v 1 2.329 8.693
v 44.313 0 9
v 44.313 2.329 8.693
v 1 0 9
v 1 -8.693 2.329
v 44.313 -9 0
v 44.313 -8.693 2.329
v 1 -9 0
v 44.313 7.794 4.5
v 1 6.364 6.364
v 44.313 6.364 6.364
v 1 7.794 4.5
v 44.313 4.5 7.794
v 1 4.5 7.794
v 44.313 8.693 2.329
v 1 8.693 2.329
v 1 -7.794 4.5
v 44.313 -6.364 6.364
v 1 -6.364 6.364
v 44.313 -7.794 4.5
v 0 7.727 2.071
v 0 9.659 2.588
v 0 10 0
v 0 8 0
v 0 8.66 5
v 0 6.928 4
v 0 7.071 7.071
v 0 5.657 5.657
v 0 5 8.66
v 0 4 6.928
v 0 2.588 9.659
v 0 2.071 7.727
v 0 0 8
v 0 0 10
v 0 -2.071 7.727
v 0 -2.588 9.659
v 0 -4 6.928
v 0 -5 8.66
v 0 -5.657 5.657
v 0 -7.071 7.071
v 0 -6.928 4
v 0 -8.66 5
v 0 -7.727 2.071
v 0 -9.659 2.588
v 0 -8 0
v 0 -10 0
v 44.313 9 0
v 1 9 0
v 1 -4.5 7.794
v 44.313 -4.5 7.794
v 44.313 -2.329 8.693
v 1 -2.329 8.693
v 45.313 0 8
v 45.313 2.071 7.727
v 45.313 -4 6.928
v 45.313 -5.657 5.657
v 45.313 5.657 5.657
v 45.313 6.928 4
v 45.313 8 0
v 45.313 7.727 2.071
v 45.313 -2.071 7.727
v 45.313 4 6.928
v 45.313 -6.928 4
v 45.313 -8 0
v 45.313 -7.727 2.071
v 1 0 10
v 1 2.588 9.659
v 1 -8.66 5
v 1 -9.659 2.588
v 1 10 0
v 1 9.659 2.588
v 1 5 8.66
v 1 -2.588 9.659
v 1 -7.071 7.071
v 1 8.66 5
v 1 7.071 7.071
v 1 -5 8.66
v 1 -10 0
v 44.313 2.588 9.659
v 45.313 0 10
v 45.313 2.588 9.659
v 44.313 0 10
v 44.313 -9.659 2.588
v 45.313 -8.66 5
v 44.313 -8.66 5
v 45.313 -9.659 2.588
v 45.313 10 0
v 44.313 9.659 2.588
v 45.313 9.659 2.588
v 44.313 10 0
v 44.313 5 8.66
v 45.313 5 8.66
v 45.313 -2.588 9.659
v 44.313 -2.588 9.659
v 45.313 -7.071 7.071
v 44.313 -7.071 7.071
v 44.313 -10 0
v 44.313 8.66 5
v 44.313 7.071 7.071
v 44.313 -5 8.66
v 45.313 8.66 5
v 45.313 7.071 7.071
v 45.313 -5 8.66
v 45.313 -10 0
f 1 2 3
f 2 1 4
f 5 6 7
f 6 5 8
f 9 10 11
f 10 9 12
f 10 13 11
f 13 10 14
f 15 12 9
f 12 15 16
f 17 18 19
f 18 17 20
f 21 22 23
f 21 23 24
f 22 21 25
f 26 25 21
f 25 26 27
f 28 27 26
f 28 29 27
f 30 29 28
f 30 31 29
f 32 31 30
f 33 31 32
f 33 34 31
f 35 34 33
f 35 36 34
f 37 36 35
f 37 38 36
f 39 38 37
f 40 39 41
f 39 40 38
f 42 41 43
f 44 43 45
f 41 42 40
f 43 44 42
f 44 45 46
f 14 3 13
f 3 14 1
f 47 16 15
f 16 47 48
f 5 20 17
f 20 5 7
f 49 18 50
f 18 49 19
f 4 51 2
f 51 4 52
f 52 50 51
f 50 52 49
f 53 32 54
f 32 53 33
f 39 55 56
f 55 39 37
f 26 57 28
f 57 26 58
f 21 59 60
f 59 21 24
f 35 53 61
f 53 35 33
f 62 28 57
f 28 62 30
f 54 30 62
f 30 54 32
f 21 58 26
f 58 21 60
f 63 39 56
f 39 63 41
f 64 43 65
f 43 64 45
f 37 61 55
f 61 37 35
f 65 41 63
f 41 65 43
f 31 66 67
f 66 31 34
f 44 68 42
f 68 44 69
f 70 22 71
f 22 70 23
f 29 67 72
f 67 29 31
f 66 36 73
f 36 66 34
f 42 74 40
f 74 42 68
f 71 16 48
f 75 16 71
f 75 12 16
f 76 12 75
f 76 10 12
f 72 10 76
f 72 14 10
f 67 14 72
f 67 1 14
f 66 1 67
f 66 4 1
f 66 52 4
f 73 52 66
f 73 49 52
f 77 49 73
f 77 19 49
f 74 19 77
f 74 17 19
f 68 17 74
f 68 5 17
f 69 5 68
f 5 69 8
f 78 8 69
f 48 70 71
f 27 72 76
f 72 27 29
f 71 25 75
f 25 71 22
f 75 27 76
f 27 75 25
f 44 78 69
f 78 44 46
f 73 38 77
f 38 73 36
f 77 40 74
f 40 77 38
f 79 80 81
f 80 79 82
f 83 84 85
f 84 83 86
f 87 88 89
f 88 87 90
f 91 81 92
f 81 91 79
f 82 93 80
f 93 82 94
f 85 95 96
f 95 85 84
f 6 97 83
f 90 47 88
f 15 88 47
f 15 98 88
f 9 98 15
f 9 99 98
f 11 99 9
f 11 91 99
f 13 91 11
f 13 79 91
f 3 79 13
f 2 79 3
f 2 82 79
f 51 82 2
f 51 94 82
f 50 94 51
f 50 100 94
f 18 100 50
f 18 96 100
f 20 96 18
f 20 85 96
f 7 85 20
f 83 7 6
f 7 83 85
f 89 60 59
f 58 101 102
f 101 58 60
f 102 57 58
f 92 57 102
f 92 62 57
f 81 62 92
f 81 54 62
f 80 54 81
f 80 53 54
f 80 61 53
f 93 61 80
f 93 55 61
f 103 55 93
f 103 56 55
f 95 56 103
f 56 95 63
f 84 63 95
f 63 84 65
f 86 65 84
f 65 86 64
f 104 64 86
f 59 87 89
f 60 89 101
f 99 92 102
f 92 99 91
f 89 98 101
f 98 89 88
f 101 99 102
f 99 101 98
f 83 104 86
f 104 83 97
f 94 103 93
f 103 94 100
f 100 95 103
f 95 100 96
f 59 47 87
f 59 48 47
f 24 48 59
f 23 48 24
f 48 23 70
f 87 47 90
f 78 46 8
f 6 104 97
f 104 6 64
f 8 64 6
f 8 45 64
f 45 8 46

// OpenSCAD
// file: ../build_environments.scad
// build_environments.scad: modules to build level sections
//

module pool(diameter=10.0, wall_height=2.0, step_width=3.0, connections=[])
{
    difference() {
        union() {
        difference() {
            cylinder(h=0.5,r1=diameter+step_width,r2=diameter+step_width,$fn=48);
            translate([0,0,-0.1])
                cylinder(h=0.7,r1=diameter,r2=diameter,$fn=48);
        }
        difference() {
            cylinder(h=wall_height,r1=diameter+step_width+1.0,r2=diameter+step_width+1.0,$fn=48);
            translate([0,0,-0.1])
                cylinder(h=wall_height+0.2,r1=diameter+step_width,r2=diameter+step_width,$fn=48);
        }
        }
    
        for (c = connections)
        {
            rotate([0,90,0]) {
                angle = atan2(c[1],c[0]);
                rotate([-angle,0,0]) {
                    cylinder(h=diameter+5.0,r1=c[2],r2=c[2],$fn=48);
                }
            }
        }
    }
}

module straight(length=10.0, width=2.0, dy1=0.0, dy2=0.0, dz=0.0)
{
    dims = [0, 0, 0, 0, 0, (dz/length)];
    matrix = [
        [ 1, dims[0], dims[1], 0 ],
        [ dims[2], 1, dims[4], 0 ],
        [ dims[5], dims[3], 1, 0 ],
        [ 0, 0, 0, 1 ]
    ];
    multmatrix(matrix)
    difference() {
        translate([dy1,0,0])
        union() {
            rotate([0,90,0]) {
                difference() {
                    cylinder(h=(length-dy1-dy2),r1=width+1.0,r2=width+1.0,$fn=24);
                    translate([0,0,-0.1])
                        cylinder(h=(length-dy1-dy2+0.2),r1=width,r2=width,$fn=24);
                }
                difference() {
                    cylinder(h=1.0,r1=width+2.0,r2=width+2.0,$fn=24);
                    translate([0,0,-0.1])
                        cylinder(h=1.2,r1=width,r2=width,$fn=24);
                }
                translate([0,0,(length-dy1-dy2)-1.0]) {
                    difference() {
                        cylinder(h=1.0,r1=width+2.0,r2=width+2.0,$fn=24);
                        translate([0,0,-0.1])
                            cylinder(h=1.2,r1=width,r2=width,$fn=24);
                    }
                }
            }
        }
        translate([0,0,-(2*width+4.0)/2])
            cube([3*length,3*length,2*width+4.0],center=true);
    }
}

module curve(p0=[0,0], center=[0,0], dir=1, angle=0.0, width=2.0)
{
    radius = sqrt((p0[0]-center[0])*(p0[0]-center[0]) + (p0[1]-center[1])*(p0[1]-center[1]));
    if (dir == 0) {
        difference() {
            rotate([0,0,-90])
            difference() {
                rotate_extrude(angle = angle, convexity = 10, $fn=32)
                    translate([radius, 0, 0])
                        circle(r = width+1.0,$fn=24);
                rotate([0,0,-1.0])
                    rotate_extrude(angle = angle+2.0, convexity = 10, $fn=32)
                        translate([radius, 0, 0])
                            circle(r = width,$fn=24);
            }
            translate([0,0,-(2*width+4.0)/2])
                cube([5*radius,5*radius,2*width+4.0],center=true);
        }
    }
    else {
        difference() {
            rotate([0,0,90])
            difference() {
                rotate_extrude(angle = -angle, convexity = 10, $fn=32)
                    translate([radius, 0, 0])
                        circle(r = width+1.0,$fn=24);
                rotate([0,0,1.0])
                    rotate_extrude(angle = -angle-2.0, convexity = 10, $fn=32)
                        translate([radius, 0, 0])
                            circle(r = width,$fn=24);
            }
            translate([0,0,-(2*width+4.0)/2])
                cube([5*radius,5*radius,2*width+4.0],center=true);
        }
    }

}

// test pool
//pool(diameter=12.0000, wall_height=3.0000, step_width=3.0000, connections=[[0.0000,-26.0000,2.0000], [23.6074,0.0000,2.0000]]);

// test straight, slope
//straight(length=26.0000, width=2.0000, dy1=11.8322, dy2=6.7082, dz=0.0000);
//straight(length=29.1549, width=12.0000, dy1=0.0000, dy2=0.0000, dz=-15.0000);

// test curve
//curve(p0=[23.6074, 0.0000], center=[23.6074, 5.0000], dir=0, angle=60.1011, width=2.0000);
//curve(p0=[33.6426, 12.4219], center=[37.9771, 9.9295], dir=1, angle=120.4627, width=2.0000);
// main file
use <../build_environments.scad>;
straight(length=45.3133, width=8.0000, dy1=0.0000, dy2=0.0000, dz=0.0000);
